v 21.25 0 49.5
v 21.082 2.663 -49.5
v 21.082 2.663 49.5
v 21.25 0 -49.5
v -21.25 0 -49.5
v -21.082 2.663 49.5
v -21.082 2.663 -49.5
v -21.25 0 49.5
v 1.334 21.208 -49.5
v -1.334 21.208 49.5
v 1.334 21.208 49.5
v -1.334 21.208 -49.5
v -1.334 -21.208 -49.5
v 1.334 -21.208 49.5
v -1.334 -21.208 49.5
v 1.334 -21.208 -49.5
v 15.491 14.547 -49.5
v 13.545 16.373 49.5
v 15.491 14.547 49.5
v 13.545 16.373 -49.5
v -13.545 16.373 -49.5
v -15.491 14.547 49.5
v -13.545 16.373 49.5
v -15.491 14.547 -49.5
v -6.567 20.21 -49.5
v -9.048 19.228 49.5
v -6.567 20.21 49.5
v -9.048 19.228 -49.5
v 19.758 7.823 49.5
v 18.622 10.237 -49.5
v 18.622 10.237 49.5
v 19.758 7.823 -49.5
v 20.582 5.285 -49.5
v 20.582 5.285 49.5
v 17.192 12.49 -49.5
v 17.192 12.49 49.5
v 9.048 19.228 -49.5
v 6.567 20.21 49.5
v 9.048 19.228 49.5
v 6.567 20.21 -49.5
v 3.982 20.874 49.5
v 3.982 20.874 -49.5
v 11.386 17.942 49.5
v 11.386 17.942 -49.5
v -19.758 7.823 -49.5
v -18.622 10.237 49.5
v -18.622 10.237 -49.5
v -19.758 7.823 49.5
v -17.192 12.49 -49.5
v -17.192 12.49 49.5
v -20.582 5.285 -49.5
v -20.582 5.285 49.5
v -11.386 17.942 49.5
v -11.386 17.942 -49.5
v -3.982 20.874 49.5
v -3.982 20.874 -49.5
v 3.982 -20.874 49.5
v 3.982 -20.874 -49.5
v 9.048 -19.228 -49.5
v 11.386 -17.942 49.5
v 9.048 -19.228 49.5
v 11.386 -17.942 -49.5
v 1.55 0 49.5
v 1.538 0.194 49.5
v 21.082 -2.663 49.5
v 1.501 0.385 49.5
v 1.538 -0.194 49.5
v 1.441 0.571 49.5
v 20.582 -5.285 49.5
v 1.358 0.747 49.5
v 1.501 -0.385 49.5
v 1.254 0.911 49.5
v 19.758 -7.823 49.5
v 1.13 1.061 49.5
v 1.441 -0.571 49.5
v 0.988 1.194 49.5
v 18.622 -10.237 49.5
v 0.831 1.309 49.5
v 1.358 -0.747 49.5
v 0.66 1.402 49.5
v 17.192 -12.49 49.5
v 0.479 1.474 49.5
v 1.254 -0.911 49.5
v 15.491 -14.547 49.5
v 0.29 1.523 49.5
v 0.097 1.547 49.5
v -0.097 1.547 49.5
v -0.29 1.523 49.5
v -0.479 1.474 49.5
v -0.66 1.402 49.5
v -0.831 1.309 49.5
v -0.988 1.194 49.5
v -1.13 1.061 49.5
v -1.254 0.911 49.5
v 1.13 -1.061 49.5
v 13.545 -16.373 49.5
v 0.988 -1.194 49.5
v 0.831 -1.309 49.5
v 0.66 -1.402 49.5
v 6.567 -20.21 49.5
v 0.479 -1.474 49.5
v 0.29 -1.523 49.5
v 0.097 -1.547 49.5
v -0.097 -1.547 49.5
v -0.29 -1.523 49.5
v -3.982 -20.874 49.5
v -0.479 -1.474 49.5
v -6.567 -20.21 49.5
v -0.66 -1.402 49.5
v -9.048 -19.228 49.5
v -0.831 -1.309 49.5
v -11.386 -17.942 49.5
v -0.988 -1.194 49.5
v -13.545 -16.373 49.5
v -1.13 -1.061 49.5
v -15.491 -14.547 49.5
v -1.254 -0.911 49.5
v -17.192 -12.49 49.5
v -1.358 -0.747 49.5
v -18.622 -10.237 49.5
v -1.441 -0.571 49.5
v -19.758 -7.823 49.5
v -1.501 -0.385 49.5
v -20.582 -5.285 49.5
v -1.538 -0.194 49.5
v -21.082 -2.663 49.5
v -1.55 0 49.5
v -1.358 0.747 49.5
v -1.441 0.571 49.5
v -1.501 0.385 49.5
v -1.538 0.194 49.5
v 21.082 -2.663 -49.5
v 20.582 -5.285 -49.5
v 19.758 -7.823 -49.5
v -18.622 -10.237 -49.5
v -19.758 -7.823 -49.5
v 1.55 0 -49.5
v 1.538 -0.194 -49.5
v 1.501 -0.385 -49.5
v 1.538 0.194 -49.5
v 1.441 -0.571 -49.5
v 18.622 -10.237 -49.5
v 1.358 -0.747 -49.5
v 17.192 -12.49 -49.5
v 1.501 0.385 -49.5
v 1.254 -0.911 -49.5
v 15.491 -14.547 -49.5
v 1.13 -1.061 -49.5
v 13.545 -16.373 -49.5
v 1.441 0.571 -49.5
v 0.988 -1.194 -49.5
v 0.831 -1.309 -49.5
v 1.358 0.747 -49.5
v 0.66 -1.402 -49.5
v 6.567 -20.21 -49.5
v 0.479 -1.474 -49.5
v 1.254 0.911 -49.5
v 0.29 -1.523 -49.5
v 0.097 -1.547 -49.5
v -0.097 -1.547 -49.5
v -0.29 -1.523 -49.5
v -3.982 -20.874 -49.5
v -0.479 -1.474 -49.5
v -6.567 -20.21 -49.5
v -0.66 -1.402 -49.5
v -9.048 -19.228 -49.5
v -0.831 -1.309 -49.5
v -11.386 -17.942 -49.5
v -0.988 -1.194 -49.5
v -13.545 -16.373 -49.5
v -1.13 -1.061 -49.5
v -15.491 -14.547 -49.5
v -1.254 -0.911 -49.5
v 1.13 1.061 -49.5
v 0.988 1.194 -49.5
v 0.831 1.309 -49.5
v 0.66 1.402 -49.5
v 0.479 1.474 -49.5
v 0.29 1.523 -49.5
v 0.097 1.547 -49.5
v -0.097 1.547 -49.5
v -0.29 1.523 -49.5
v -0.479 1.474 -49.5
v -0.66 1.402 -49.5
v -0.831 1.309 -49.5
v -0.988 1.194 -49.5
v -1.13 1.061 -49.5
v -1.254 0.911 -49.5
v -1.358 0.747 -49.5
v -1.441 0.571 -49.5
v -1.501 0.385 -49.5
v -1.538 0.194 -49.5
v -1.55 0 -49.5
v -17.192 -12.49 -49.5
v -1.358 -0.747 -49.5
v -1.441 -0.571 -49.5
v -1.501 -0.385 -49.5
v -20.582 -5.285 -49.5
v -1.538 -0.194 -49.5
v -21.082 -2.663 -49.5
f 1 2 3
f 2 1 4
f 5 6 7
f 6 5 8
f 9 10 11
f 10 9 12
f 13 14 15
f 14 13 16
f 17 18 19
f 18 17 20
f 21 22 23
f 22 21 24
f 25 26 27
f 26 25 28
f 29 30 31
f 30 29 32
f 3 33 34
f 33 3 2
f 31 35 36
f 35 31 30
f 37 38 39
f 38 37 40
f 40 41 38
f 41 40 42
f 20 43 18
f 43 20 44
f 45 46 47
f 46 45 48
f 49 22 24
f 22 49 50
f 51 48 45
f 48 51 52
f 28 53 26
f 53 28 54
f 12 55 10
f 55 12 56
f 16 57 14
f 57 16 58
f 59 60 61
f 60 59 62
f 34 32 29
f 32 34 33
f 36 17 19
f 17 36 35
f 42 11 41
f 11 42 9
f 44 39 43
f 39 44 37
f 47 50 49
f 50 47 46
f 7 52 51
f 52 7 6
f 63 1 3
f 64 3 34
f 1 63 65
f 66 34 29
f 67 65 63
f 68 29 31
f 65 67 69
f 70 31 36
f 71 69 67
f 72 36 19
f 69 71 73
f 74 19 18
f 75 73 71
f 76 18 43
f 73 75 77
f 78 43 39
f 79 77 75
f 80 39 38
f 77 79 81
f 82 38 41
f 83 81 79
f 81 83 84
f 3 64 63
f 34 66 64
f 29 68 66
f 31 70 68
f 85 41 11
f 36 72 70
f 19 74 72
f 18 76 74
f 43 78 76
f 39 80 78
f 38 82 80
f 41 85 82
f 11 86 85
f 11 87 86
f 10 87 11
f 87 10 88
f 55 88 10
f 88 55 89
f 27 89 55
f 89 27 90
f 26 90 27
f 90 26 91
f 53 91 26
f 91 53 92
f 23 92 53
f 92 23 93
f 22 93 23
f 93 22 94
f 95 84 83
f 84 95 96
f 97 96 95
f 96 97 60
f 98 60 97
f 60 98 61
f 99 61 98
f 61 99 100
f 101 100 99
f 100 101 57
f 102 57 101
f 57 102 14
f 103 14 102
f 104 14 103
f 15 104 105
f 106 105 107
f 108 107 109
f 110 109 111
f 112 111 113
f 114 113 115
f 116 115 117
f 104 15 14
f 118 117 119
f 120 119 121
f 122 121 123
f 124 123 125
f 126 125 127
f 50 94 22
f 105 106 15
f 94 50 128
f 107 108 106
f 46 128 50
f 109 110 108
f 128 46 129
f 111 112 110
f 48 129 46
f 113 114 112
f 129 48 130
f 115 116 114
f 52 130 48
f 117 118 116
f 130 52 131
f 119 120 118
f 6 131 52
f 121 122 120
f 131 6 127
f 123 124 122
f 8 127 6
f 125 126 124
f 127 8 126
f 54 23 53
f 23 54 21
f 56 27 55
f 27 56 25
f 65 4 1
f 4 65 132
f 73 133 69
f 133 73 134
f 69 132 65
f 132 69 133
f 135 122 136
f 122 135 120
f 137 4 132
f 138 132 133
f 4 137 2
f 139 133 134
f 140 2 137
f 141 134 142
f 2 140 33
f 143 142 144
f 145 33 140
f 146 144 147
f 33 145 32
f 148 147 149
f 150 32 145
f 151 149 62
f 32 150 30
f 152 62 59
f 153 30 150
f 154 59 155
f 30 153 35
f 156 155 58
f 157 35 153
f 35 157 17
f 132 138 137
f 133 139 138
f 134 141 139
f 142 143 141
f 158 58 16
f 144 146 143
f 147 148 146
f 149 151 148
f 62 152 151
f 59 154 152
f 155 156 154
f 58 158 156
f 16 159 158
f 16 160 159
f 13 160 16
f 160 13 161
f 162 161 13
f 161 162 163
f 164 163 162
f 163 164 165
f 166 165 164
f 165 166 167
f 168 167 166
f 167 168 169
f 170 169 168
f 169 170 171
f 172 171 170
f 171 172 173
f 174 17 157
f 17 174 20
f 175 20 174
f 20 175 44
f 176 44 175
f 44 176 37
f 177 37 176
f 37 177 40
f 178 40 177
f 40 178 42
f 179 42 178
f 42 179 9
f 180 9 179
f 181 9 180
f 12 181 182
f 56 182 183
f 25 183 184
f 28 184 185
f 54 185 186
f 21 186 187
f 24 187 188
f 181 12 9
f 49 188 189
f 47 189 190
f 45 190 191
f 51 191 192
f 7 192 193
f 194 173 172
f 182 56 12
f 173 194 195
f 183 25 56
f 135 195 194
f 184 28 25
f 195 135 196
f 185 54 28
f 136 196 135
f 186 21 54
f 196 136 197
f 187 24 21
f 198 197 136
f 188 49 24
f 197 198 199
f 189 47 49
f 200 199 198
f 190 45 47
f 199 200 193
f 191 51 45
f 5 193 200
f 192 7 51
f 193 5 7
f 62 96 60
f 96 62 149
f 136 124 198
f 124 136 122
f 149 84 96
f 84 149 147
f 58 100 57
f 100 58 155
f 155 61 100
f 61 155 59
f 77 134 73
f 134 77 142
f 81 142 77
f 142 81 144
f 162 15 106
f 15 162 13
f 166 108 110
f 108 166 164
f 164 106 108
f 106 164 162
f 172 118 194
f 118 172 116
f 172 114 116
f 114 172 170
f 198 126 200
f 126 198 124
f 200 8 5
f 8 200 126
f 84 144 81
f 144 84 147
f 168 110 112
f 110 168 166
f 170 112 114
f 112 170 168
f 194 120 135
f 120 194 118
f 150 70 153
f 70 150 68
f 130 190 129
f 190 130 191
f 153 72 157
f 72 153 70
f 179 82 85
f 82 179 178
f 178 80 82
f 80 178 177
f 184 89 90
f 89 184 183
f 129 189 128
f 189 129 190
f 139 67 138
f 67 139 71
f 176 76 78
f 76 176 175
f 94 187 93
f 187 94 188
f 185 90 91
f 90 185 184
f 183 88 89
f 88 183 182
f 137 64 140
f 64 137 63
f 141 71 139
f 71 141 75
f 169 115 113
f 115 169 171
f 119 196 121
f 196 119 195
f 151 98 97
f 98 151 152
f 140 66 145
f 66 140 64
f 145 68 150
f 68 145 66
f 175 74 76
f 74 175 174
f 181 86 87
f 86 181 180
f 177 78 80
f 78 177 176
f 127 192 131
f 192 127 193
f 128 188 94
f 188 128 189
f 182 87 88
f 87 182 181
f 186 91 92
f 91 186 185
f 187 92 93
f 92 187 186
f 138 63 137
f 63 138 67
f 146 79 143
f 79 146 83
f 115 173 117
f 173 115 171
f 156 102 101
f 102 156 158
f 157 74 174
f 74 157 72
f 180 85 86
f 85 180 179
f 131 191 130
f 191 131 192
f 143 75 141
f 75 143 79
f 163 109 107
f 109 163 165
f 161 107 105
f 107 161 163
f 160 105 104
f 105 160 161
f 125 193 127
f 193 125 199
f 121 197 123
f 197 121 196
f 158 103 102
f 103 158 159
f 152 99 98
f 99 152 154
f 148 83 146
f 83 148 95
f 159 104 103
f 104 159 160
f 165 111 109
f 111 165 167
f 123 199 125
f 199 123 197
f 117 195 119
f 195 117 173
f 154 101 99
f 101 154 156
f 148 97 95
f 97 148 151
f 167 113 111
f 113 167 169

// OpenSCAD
$fn = 50;


difference() {
	union() {
		translate(v = [0, 0, -49.5000000000]) {
			cylinder(h = 99, r = 21.2500000000);
		}
	}
	union() {
		translate(v = [0, 0, -100.0000000000]) {
			cylinder(h = 200, r = 1.5500000000);
		}
	}
}
